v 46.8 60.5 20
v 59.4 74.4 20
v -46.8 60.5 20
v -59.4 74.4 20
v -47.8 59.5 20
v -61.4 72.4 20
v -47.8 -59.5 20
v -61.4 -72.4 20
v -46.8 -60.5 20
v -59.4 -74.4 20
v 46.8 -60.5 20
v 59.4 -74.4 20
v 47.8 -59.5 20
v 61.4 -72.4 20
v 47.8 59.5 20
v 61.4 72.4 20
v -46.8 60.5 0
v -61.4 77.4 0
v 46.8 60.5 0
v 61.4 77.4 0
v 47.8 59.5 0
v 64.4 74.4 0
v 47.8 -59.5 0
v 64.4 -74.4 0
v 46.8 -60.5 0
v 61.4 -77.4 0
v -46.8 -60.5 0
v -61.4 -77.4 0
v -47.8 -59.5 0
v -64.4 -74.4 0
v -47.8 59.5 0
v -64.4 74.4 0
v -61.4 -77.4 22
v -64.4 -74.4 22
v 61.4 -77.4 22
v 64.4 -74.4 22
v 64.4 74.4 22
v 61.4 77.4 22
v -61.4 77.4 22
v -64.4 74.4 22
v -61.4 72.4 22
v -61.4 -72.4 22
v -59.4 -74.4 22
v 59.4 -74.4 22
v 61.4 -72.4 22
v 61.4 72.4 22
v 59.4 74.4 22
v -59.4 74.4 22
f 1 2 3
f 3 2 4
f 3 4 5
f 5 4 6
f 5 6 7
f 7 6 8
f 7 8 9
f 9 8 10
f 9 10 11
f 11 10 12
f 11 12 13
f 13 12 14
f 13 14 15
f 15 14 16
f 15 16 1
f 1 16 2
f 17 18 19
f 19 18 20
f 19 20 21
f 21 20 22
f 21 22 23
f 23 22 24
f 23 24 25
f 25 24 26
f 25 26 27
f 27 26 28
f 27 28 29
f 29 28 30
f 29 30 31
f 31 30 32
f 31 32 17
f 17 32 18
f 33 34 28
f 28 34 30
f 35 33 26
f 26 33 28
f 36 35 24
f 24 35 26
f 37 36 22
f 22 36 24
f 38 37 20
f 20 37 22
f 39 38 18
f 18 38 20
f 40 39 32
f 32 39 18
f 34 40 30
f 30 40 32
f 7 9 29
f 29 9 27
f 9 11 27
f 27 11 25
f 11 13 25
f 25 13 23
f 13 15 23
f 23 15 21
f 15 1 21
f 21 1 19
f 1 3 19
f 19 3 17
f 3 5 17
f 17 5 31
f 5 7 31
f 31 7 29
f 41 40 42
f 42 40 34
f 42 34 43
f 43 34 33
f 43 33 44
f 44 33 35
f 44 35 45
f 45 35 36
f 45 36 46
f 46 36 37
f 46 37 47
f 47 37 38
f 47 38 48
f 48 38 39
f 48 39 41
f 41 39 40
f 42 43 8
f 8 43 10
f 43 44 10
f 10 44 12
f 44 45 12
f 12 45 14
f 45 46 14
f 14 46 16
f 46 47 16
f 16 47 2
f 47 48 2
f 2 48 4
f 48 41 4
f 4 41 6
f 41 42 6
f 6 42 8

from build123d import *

# Parameters (mm, degrees)
SUPPORT_PLANE_EXACTLY_20MM_ABOVE_TABLE_DEPTH   = 20
LOW_LOCATING_LIP_0P4MM_CLEARANCE_EACH_SI_START = 20
LOW_LOCATING_LIP_0P4MM_CLEARANCE_EACH_SI_DEPTH = 2


with BuildPart() as part:
    # 草图1 → Support_plane_exactly_20mm_above_table (new body)
    with BuildSketch(Plane.XY):
        Polygon((-61.4, -77.4), (61.4, -77.4), (64.4, -74.4), (64.4, 74.4), (61.4, 77.4), (-61.4, 77.4), (-64.4, 74.4), (-64.4, -74.4), align=None)
        Polygon((-46.8, -60.5), (46.8, -60.5), (47.8, -59.5), (47.8, 59.5), (46.8, 60.5), (-46.8, 60.5), (-47.8, 59.5), (-47.8, -59.5), align=None, mode=Mode.SUBTRACT)
    extrude(amount=SUPPORT_PLANE_EXACTLY_20MM_ABOVE_TABLE_DEPTH)

    # 草图2 → Low_locating_lip_0p4mm_clearance_each_side (add)
    with BuildSketch(Plane.XY.offset(LOW_LOCATING_LIP_0P4MM_CLEARANCE_EACH_SI_START)):
        Polygon((-61.4, -77.4), (61.4, -77.4), (64.4, -74.4), (64.4, 74.4), (61.4, 77.4), (-61.4, 77.4), (-64.4, 74.4), (-64.4, -74.4), align=None)
        Polygon((-59.4, -74.4), (59.4, -74.4), (61.4, -72.4), (61.4, 72.4), (59.4, 74.4), (-59.4, 74.4), (-61.4, 72.4), (-61.4, -72.4), align=None, mode=Mode.SUBTRACT)
    extrude(amount=LOW_LOCATING_LIP_0P4MM_CLEARANCE_EACH_SI_DEPTH)


solid = part.part
